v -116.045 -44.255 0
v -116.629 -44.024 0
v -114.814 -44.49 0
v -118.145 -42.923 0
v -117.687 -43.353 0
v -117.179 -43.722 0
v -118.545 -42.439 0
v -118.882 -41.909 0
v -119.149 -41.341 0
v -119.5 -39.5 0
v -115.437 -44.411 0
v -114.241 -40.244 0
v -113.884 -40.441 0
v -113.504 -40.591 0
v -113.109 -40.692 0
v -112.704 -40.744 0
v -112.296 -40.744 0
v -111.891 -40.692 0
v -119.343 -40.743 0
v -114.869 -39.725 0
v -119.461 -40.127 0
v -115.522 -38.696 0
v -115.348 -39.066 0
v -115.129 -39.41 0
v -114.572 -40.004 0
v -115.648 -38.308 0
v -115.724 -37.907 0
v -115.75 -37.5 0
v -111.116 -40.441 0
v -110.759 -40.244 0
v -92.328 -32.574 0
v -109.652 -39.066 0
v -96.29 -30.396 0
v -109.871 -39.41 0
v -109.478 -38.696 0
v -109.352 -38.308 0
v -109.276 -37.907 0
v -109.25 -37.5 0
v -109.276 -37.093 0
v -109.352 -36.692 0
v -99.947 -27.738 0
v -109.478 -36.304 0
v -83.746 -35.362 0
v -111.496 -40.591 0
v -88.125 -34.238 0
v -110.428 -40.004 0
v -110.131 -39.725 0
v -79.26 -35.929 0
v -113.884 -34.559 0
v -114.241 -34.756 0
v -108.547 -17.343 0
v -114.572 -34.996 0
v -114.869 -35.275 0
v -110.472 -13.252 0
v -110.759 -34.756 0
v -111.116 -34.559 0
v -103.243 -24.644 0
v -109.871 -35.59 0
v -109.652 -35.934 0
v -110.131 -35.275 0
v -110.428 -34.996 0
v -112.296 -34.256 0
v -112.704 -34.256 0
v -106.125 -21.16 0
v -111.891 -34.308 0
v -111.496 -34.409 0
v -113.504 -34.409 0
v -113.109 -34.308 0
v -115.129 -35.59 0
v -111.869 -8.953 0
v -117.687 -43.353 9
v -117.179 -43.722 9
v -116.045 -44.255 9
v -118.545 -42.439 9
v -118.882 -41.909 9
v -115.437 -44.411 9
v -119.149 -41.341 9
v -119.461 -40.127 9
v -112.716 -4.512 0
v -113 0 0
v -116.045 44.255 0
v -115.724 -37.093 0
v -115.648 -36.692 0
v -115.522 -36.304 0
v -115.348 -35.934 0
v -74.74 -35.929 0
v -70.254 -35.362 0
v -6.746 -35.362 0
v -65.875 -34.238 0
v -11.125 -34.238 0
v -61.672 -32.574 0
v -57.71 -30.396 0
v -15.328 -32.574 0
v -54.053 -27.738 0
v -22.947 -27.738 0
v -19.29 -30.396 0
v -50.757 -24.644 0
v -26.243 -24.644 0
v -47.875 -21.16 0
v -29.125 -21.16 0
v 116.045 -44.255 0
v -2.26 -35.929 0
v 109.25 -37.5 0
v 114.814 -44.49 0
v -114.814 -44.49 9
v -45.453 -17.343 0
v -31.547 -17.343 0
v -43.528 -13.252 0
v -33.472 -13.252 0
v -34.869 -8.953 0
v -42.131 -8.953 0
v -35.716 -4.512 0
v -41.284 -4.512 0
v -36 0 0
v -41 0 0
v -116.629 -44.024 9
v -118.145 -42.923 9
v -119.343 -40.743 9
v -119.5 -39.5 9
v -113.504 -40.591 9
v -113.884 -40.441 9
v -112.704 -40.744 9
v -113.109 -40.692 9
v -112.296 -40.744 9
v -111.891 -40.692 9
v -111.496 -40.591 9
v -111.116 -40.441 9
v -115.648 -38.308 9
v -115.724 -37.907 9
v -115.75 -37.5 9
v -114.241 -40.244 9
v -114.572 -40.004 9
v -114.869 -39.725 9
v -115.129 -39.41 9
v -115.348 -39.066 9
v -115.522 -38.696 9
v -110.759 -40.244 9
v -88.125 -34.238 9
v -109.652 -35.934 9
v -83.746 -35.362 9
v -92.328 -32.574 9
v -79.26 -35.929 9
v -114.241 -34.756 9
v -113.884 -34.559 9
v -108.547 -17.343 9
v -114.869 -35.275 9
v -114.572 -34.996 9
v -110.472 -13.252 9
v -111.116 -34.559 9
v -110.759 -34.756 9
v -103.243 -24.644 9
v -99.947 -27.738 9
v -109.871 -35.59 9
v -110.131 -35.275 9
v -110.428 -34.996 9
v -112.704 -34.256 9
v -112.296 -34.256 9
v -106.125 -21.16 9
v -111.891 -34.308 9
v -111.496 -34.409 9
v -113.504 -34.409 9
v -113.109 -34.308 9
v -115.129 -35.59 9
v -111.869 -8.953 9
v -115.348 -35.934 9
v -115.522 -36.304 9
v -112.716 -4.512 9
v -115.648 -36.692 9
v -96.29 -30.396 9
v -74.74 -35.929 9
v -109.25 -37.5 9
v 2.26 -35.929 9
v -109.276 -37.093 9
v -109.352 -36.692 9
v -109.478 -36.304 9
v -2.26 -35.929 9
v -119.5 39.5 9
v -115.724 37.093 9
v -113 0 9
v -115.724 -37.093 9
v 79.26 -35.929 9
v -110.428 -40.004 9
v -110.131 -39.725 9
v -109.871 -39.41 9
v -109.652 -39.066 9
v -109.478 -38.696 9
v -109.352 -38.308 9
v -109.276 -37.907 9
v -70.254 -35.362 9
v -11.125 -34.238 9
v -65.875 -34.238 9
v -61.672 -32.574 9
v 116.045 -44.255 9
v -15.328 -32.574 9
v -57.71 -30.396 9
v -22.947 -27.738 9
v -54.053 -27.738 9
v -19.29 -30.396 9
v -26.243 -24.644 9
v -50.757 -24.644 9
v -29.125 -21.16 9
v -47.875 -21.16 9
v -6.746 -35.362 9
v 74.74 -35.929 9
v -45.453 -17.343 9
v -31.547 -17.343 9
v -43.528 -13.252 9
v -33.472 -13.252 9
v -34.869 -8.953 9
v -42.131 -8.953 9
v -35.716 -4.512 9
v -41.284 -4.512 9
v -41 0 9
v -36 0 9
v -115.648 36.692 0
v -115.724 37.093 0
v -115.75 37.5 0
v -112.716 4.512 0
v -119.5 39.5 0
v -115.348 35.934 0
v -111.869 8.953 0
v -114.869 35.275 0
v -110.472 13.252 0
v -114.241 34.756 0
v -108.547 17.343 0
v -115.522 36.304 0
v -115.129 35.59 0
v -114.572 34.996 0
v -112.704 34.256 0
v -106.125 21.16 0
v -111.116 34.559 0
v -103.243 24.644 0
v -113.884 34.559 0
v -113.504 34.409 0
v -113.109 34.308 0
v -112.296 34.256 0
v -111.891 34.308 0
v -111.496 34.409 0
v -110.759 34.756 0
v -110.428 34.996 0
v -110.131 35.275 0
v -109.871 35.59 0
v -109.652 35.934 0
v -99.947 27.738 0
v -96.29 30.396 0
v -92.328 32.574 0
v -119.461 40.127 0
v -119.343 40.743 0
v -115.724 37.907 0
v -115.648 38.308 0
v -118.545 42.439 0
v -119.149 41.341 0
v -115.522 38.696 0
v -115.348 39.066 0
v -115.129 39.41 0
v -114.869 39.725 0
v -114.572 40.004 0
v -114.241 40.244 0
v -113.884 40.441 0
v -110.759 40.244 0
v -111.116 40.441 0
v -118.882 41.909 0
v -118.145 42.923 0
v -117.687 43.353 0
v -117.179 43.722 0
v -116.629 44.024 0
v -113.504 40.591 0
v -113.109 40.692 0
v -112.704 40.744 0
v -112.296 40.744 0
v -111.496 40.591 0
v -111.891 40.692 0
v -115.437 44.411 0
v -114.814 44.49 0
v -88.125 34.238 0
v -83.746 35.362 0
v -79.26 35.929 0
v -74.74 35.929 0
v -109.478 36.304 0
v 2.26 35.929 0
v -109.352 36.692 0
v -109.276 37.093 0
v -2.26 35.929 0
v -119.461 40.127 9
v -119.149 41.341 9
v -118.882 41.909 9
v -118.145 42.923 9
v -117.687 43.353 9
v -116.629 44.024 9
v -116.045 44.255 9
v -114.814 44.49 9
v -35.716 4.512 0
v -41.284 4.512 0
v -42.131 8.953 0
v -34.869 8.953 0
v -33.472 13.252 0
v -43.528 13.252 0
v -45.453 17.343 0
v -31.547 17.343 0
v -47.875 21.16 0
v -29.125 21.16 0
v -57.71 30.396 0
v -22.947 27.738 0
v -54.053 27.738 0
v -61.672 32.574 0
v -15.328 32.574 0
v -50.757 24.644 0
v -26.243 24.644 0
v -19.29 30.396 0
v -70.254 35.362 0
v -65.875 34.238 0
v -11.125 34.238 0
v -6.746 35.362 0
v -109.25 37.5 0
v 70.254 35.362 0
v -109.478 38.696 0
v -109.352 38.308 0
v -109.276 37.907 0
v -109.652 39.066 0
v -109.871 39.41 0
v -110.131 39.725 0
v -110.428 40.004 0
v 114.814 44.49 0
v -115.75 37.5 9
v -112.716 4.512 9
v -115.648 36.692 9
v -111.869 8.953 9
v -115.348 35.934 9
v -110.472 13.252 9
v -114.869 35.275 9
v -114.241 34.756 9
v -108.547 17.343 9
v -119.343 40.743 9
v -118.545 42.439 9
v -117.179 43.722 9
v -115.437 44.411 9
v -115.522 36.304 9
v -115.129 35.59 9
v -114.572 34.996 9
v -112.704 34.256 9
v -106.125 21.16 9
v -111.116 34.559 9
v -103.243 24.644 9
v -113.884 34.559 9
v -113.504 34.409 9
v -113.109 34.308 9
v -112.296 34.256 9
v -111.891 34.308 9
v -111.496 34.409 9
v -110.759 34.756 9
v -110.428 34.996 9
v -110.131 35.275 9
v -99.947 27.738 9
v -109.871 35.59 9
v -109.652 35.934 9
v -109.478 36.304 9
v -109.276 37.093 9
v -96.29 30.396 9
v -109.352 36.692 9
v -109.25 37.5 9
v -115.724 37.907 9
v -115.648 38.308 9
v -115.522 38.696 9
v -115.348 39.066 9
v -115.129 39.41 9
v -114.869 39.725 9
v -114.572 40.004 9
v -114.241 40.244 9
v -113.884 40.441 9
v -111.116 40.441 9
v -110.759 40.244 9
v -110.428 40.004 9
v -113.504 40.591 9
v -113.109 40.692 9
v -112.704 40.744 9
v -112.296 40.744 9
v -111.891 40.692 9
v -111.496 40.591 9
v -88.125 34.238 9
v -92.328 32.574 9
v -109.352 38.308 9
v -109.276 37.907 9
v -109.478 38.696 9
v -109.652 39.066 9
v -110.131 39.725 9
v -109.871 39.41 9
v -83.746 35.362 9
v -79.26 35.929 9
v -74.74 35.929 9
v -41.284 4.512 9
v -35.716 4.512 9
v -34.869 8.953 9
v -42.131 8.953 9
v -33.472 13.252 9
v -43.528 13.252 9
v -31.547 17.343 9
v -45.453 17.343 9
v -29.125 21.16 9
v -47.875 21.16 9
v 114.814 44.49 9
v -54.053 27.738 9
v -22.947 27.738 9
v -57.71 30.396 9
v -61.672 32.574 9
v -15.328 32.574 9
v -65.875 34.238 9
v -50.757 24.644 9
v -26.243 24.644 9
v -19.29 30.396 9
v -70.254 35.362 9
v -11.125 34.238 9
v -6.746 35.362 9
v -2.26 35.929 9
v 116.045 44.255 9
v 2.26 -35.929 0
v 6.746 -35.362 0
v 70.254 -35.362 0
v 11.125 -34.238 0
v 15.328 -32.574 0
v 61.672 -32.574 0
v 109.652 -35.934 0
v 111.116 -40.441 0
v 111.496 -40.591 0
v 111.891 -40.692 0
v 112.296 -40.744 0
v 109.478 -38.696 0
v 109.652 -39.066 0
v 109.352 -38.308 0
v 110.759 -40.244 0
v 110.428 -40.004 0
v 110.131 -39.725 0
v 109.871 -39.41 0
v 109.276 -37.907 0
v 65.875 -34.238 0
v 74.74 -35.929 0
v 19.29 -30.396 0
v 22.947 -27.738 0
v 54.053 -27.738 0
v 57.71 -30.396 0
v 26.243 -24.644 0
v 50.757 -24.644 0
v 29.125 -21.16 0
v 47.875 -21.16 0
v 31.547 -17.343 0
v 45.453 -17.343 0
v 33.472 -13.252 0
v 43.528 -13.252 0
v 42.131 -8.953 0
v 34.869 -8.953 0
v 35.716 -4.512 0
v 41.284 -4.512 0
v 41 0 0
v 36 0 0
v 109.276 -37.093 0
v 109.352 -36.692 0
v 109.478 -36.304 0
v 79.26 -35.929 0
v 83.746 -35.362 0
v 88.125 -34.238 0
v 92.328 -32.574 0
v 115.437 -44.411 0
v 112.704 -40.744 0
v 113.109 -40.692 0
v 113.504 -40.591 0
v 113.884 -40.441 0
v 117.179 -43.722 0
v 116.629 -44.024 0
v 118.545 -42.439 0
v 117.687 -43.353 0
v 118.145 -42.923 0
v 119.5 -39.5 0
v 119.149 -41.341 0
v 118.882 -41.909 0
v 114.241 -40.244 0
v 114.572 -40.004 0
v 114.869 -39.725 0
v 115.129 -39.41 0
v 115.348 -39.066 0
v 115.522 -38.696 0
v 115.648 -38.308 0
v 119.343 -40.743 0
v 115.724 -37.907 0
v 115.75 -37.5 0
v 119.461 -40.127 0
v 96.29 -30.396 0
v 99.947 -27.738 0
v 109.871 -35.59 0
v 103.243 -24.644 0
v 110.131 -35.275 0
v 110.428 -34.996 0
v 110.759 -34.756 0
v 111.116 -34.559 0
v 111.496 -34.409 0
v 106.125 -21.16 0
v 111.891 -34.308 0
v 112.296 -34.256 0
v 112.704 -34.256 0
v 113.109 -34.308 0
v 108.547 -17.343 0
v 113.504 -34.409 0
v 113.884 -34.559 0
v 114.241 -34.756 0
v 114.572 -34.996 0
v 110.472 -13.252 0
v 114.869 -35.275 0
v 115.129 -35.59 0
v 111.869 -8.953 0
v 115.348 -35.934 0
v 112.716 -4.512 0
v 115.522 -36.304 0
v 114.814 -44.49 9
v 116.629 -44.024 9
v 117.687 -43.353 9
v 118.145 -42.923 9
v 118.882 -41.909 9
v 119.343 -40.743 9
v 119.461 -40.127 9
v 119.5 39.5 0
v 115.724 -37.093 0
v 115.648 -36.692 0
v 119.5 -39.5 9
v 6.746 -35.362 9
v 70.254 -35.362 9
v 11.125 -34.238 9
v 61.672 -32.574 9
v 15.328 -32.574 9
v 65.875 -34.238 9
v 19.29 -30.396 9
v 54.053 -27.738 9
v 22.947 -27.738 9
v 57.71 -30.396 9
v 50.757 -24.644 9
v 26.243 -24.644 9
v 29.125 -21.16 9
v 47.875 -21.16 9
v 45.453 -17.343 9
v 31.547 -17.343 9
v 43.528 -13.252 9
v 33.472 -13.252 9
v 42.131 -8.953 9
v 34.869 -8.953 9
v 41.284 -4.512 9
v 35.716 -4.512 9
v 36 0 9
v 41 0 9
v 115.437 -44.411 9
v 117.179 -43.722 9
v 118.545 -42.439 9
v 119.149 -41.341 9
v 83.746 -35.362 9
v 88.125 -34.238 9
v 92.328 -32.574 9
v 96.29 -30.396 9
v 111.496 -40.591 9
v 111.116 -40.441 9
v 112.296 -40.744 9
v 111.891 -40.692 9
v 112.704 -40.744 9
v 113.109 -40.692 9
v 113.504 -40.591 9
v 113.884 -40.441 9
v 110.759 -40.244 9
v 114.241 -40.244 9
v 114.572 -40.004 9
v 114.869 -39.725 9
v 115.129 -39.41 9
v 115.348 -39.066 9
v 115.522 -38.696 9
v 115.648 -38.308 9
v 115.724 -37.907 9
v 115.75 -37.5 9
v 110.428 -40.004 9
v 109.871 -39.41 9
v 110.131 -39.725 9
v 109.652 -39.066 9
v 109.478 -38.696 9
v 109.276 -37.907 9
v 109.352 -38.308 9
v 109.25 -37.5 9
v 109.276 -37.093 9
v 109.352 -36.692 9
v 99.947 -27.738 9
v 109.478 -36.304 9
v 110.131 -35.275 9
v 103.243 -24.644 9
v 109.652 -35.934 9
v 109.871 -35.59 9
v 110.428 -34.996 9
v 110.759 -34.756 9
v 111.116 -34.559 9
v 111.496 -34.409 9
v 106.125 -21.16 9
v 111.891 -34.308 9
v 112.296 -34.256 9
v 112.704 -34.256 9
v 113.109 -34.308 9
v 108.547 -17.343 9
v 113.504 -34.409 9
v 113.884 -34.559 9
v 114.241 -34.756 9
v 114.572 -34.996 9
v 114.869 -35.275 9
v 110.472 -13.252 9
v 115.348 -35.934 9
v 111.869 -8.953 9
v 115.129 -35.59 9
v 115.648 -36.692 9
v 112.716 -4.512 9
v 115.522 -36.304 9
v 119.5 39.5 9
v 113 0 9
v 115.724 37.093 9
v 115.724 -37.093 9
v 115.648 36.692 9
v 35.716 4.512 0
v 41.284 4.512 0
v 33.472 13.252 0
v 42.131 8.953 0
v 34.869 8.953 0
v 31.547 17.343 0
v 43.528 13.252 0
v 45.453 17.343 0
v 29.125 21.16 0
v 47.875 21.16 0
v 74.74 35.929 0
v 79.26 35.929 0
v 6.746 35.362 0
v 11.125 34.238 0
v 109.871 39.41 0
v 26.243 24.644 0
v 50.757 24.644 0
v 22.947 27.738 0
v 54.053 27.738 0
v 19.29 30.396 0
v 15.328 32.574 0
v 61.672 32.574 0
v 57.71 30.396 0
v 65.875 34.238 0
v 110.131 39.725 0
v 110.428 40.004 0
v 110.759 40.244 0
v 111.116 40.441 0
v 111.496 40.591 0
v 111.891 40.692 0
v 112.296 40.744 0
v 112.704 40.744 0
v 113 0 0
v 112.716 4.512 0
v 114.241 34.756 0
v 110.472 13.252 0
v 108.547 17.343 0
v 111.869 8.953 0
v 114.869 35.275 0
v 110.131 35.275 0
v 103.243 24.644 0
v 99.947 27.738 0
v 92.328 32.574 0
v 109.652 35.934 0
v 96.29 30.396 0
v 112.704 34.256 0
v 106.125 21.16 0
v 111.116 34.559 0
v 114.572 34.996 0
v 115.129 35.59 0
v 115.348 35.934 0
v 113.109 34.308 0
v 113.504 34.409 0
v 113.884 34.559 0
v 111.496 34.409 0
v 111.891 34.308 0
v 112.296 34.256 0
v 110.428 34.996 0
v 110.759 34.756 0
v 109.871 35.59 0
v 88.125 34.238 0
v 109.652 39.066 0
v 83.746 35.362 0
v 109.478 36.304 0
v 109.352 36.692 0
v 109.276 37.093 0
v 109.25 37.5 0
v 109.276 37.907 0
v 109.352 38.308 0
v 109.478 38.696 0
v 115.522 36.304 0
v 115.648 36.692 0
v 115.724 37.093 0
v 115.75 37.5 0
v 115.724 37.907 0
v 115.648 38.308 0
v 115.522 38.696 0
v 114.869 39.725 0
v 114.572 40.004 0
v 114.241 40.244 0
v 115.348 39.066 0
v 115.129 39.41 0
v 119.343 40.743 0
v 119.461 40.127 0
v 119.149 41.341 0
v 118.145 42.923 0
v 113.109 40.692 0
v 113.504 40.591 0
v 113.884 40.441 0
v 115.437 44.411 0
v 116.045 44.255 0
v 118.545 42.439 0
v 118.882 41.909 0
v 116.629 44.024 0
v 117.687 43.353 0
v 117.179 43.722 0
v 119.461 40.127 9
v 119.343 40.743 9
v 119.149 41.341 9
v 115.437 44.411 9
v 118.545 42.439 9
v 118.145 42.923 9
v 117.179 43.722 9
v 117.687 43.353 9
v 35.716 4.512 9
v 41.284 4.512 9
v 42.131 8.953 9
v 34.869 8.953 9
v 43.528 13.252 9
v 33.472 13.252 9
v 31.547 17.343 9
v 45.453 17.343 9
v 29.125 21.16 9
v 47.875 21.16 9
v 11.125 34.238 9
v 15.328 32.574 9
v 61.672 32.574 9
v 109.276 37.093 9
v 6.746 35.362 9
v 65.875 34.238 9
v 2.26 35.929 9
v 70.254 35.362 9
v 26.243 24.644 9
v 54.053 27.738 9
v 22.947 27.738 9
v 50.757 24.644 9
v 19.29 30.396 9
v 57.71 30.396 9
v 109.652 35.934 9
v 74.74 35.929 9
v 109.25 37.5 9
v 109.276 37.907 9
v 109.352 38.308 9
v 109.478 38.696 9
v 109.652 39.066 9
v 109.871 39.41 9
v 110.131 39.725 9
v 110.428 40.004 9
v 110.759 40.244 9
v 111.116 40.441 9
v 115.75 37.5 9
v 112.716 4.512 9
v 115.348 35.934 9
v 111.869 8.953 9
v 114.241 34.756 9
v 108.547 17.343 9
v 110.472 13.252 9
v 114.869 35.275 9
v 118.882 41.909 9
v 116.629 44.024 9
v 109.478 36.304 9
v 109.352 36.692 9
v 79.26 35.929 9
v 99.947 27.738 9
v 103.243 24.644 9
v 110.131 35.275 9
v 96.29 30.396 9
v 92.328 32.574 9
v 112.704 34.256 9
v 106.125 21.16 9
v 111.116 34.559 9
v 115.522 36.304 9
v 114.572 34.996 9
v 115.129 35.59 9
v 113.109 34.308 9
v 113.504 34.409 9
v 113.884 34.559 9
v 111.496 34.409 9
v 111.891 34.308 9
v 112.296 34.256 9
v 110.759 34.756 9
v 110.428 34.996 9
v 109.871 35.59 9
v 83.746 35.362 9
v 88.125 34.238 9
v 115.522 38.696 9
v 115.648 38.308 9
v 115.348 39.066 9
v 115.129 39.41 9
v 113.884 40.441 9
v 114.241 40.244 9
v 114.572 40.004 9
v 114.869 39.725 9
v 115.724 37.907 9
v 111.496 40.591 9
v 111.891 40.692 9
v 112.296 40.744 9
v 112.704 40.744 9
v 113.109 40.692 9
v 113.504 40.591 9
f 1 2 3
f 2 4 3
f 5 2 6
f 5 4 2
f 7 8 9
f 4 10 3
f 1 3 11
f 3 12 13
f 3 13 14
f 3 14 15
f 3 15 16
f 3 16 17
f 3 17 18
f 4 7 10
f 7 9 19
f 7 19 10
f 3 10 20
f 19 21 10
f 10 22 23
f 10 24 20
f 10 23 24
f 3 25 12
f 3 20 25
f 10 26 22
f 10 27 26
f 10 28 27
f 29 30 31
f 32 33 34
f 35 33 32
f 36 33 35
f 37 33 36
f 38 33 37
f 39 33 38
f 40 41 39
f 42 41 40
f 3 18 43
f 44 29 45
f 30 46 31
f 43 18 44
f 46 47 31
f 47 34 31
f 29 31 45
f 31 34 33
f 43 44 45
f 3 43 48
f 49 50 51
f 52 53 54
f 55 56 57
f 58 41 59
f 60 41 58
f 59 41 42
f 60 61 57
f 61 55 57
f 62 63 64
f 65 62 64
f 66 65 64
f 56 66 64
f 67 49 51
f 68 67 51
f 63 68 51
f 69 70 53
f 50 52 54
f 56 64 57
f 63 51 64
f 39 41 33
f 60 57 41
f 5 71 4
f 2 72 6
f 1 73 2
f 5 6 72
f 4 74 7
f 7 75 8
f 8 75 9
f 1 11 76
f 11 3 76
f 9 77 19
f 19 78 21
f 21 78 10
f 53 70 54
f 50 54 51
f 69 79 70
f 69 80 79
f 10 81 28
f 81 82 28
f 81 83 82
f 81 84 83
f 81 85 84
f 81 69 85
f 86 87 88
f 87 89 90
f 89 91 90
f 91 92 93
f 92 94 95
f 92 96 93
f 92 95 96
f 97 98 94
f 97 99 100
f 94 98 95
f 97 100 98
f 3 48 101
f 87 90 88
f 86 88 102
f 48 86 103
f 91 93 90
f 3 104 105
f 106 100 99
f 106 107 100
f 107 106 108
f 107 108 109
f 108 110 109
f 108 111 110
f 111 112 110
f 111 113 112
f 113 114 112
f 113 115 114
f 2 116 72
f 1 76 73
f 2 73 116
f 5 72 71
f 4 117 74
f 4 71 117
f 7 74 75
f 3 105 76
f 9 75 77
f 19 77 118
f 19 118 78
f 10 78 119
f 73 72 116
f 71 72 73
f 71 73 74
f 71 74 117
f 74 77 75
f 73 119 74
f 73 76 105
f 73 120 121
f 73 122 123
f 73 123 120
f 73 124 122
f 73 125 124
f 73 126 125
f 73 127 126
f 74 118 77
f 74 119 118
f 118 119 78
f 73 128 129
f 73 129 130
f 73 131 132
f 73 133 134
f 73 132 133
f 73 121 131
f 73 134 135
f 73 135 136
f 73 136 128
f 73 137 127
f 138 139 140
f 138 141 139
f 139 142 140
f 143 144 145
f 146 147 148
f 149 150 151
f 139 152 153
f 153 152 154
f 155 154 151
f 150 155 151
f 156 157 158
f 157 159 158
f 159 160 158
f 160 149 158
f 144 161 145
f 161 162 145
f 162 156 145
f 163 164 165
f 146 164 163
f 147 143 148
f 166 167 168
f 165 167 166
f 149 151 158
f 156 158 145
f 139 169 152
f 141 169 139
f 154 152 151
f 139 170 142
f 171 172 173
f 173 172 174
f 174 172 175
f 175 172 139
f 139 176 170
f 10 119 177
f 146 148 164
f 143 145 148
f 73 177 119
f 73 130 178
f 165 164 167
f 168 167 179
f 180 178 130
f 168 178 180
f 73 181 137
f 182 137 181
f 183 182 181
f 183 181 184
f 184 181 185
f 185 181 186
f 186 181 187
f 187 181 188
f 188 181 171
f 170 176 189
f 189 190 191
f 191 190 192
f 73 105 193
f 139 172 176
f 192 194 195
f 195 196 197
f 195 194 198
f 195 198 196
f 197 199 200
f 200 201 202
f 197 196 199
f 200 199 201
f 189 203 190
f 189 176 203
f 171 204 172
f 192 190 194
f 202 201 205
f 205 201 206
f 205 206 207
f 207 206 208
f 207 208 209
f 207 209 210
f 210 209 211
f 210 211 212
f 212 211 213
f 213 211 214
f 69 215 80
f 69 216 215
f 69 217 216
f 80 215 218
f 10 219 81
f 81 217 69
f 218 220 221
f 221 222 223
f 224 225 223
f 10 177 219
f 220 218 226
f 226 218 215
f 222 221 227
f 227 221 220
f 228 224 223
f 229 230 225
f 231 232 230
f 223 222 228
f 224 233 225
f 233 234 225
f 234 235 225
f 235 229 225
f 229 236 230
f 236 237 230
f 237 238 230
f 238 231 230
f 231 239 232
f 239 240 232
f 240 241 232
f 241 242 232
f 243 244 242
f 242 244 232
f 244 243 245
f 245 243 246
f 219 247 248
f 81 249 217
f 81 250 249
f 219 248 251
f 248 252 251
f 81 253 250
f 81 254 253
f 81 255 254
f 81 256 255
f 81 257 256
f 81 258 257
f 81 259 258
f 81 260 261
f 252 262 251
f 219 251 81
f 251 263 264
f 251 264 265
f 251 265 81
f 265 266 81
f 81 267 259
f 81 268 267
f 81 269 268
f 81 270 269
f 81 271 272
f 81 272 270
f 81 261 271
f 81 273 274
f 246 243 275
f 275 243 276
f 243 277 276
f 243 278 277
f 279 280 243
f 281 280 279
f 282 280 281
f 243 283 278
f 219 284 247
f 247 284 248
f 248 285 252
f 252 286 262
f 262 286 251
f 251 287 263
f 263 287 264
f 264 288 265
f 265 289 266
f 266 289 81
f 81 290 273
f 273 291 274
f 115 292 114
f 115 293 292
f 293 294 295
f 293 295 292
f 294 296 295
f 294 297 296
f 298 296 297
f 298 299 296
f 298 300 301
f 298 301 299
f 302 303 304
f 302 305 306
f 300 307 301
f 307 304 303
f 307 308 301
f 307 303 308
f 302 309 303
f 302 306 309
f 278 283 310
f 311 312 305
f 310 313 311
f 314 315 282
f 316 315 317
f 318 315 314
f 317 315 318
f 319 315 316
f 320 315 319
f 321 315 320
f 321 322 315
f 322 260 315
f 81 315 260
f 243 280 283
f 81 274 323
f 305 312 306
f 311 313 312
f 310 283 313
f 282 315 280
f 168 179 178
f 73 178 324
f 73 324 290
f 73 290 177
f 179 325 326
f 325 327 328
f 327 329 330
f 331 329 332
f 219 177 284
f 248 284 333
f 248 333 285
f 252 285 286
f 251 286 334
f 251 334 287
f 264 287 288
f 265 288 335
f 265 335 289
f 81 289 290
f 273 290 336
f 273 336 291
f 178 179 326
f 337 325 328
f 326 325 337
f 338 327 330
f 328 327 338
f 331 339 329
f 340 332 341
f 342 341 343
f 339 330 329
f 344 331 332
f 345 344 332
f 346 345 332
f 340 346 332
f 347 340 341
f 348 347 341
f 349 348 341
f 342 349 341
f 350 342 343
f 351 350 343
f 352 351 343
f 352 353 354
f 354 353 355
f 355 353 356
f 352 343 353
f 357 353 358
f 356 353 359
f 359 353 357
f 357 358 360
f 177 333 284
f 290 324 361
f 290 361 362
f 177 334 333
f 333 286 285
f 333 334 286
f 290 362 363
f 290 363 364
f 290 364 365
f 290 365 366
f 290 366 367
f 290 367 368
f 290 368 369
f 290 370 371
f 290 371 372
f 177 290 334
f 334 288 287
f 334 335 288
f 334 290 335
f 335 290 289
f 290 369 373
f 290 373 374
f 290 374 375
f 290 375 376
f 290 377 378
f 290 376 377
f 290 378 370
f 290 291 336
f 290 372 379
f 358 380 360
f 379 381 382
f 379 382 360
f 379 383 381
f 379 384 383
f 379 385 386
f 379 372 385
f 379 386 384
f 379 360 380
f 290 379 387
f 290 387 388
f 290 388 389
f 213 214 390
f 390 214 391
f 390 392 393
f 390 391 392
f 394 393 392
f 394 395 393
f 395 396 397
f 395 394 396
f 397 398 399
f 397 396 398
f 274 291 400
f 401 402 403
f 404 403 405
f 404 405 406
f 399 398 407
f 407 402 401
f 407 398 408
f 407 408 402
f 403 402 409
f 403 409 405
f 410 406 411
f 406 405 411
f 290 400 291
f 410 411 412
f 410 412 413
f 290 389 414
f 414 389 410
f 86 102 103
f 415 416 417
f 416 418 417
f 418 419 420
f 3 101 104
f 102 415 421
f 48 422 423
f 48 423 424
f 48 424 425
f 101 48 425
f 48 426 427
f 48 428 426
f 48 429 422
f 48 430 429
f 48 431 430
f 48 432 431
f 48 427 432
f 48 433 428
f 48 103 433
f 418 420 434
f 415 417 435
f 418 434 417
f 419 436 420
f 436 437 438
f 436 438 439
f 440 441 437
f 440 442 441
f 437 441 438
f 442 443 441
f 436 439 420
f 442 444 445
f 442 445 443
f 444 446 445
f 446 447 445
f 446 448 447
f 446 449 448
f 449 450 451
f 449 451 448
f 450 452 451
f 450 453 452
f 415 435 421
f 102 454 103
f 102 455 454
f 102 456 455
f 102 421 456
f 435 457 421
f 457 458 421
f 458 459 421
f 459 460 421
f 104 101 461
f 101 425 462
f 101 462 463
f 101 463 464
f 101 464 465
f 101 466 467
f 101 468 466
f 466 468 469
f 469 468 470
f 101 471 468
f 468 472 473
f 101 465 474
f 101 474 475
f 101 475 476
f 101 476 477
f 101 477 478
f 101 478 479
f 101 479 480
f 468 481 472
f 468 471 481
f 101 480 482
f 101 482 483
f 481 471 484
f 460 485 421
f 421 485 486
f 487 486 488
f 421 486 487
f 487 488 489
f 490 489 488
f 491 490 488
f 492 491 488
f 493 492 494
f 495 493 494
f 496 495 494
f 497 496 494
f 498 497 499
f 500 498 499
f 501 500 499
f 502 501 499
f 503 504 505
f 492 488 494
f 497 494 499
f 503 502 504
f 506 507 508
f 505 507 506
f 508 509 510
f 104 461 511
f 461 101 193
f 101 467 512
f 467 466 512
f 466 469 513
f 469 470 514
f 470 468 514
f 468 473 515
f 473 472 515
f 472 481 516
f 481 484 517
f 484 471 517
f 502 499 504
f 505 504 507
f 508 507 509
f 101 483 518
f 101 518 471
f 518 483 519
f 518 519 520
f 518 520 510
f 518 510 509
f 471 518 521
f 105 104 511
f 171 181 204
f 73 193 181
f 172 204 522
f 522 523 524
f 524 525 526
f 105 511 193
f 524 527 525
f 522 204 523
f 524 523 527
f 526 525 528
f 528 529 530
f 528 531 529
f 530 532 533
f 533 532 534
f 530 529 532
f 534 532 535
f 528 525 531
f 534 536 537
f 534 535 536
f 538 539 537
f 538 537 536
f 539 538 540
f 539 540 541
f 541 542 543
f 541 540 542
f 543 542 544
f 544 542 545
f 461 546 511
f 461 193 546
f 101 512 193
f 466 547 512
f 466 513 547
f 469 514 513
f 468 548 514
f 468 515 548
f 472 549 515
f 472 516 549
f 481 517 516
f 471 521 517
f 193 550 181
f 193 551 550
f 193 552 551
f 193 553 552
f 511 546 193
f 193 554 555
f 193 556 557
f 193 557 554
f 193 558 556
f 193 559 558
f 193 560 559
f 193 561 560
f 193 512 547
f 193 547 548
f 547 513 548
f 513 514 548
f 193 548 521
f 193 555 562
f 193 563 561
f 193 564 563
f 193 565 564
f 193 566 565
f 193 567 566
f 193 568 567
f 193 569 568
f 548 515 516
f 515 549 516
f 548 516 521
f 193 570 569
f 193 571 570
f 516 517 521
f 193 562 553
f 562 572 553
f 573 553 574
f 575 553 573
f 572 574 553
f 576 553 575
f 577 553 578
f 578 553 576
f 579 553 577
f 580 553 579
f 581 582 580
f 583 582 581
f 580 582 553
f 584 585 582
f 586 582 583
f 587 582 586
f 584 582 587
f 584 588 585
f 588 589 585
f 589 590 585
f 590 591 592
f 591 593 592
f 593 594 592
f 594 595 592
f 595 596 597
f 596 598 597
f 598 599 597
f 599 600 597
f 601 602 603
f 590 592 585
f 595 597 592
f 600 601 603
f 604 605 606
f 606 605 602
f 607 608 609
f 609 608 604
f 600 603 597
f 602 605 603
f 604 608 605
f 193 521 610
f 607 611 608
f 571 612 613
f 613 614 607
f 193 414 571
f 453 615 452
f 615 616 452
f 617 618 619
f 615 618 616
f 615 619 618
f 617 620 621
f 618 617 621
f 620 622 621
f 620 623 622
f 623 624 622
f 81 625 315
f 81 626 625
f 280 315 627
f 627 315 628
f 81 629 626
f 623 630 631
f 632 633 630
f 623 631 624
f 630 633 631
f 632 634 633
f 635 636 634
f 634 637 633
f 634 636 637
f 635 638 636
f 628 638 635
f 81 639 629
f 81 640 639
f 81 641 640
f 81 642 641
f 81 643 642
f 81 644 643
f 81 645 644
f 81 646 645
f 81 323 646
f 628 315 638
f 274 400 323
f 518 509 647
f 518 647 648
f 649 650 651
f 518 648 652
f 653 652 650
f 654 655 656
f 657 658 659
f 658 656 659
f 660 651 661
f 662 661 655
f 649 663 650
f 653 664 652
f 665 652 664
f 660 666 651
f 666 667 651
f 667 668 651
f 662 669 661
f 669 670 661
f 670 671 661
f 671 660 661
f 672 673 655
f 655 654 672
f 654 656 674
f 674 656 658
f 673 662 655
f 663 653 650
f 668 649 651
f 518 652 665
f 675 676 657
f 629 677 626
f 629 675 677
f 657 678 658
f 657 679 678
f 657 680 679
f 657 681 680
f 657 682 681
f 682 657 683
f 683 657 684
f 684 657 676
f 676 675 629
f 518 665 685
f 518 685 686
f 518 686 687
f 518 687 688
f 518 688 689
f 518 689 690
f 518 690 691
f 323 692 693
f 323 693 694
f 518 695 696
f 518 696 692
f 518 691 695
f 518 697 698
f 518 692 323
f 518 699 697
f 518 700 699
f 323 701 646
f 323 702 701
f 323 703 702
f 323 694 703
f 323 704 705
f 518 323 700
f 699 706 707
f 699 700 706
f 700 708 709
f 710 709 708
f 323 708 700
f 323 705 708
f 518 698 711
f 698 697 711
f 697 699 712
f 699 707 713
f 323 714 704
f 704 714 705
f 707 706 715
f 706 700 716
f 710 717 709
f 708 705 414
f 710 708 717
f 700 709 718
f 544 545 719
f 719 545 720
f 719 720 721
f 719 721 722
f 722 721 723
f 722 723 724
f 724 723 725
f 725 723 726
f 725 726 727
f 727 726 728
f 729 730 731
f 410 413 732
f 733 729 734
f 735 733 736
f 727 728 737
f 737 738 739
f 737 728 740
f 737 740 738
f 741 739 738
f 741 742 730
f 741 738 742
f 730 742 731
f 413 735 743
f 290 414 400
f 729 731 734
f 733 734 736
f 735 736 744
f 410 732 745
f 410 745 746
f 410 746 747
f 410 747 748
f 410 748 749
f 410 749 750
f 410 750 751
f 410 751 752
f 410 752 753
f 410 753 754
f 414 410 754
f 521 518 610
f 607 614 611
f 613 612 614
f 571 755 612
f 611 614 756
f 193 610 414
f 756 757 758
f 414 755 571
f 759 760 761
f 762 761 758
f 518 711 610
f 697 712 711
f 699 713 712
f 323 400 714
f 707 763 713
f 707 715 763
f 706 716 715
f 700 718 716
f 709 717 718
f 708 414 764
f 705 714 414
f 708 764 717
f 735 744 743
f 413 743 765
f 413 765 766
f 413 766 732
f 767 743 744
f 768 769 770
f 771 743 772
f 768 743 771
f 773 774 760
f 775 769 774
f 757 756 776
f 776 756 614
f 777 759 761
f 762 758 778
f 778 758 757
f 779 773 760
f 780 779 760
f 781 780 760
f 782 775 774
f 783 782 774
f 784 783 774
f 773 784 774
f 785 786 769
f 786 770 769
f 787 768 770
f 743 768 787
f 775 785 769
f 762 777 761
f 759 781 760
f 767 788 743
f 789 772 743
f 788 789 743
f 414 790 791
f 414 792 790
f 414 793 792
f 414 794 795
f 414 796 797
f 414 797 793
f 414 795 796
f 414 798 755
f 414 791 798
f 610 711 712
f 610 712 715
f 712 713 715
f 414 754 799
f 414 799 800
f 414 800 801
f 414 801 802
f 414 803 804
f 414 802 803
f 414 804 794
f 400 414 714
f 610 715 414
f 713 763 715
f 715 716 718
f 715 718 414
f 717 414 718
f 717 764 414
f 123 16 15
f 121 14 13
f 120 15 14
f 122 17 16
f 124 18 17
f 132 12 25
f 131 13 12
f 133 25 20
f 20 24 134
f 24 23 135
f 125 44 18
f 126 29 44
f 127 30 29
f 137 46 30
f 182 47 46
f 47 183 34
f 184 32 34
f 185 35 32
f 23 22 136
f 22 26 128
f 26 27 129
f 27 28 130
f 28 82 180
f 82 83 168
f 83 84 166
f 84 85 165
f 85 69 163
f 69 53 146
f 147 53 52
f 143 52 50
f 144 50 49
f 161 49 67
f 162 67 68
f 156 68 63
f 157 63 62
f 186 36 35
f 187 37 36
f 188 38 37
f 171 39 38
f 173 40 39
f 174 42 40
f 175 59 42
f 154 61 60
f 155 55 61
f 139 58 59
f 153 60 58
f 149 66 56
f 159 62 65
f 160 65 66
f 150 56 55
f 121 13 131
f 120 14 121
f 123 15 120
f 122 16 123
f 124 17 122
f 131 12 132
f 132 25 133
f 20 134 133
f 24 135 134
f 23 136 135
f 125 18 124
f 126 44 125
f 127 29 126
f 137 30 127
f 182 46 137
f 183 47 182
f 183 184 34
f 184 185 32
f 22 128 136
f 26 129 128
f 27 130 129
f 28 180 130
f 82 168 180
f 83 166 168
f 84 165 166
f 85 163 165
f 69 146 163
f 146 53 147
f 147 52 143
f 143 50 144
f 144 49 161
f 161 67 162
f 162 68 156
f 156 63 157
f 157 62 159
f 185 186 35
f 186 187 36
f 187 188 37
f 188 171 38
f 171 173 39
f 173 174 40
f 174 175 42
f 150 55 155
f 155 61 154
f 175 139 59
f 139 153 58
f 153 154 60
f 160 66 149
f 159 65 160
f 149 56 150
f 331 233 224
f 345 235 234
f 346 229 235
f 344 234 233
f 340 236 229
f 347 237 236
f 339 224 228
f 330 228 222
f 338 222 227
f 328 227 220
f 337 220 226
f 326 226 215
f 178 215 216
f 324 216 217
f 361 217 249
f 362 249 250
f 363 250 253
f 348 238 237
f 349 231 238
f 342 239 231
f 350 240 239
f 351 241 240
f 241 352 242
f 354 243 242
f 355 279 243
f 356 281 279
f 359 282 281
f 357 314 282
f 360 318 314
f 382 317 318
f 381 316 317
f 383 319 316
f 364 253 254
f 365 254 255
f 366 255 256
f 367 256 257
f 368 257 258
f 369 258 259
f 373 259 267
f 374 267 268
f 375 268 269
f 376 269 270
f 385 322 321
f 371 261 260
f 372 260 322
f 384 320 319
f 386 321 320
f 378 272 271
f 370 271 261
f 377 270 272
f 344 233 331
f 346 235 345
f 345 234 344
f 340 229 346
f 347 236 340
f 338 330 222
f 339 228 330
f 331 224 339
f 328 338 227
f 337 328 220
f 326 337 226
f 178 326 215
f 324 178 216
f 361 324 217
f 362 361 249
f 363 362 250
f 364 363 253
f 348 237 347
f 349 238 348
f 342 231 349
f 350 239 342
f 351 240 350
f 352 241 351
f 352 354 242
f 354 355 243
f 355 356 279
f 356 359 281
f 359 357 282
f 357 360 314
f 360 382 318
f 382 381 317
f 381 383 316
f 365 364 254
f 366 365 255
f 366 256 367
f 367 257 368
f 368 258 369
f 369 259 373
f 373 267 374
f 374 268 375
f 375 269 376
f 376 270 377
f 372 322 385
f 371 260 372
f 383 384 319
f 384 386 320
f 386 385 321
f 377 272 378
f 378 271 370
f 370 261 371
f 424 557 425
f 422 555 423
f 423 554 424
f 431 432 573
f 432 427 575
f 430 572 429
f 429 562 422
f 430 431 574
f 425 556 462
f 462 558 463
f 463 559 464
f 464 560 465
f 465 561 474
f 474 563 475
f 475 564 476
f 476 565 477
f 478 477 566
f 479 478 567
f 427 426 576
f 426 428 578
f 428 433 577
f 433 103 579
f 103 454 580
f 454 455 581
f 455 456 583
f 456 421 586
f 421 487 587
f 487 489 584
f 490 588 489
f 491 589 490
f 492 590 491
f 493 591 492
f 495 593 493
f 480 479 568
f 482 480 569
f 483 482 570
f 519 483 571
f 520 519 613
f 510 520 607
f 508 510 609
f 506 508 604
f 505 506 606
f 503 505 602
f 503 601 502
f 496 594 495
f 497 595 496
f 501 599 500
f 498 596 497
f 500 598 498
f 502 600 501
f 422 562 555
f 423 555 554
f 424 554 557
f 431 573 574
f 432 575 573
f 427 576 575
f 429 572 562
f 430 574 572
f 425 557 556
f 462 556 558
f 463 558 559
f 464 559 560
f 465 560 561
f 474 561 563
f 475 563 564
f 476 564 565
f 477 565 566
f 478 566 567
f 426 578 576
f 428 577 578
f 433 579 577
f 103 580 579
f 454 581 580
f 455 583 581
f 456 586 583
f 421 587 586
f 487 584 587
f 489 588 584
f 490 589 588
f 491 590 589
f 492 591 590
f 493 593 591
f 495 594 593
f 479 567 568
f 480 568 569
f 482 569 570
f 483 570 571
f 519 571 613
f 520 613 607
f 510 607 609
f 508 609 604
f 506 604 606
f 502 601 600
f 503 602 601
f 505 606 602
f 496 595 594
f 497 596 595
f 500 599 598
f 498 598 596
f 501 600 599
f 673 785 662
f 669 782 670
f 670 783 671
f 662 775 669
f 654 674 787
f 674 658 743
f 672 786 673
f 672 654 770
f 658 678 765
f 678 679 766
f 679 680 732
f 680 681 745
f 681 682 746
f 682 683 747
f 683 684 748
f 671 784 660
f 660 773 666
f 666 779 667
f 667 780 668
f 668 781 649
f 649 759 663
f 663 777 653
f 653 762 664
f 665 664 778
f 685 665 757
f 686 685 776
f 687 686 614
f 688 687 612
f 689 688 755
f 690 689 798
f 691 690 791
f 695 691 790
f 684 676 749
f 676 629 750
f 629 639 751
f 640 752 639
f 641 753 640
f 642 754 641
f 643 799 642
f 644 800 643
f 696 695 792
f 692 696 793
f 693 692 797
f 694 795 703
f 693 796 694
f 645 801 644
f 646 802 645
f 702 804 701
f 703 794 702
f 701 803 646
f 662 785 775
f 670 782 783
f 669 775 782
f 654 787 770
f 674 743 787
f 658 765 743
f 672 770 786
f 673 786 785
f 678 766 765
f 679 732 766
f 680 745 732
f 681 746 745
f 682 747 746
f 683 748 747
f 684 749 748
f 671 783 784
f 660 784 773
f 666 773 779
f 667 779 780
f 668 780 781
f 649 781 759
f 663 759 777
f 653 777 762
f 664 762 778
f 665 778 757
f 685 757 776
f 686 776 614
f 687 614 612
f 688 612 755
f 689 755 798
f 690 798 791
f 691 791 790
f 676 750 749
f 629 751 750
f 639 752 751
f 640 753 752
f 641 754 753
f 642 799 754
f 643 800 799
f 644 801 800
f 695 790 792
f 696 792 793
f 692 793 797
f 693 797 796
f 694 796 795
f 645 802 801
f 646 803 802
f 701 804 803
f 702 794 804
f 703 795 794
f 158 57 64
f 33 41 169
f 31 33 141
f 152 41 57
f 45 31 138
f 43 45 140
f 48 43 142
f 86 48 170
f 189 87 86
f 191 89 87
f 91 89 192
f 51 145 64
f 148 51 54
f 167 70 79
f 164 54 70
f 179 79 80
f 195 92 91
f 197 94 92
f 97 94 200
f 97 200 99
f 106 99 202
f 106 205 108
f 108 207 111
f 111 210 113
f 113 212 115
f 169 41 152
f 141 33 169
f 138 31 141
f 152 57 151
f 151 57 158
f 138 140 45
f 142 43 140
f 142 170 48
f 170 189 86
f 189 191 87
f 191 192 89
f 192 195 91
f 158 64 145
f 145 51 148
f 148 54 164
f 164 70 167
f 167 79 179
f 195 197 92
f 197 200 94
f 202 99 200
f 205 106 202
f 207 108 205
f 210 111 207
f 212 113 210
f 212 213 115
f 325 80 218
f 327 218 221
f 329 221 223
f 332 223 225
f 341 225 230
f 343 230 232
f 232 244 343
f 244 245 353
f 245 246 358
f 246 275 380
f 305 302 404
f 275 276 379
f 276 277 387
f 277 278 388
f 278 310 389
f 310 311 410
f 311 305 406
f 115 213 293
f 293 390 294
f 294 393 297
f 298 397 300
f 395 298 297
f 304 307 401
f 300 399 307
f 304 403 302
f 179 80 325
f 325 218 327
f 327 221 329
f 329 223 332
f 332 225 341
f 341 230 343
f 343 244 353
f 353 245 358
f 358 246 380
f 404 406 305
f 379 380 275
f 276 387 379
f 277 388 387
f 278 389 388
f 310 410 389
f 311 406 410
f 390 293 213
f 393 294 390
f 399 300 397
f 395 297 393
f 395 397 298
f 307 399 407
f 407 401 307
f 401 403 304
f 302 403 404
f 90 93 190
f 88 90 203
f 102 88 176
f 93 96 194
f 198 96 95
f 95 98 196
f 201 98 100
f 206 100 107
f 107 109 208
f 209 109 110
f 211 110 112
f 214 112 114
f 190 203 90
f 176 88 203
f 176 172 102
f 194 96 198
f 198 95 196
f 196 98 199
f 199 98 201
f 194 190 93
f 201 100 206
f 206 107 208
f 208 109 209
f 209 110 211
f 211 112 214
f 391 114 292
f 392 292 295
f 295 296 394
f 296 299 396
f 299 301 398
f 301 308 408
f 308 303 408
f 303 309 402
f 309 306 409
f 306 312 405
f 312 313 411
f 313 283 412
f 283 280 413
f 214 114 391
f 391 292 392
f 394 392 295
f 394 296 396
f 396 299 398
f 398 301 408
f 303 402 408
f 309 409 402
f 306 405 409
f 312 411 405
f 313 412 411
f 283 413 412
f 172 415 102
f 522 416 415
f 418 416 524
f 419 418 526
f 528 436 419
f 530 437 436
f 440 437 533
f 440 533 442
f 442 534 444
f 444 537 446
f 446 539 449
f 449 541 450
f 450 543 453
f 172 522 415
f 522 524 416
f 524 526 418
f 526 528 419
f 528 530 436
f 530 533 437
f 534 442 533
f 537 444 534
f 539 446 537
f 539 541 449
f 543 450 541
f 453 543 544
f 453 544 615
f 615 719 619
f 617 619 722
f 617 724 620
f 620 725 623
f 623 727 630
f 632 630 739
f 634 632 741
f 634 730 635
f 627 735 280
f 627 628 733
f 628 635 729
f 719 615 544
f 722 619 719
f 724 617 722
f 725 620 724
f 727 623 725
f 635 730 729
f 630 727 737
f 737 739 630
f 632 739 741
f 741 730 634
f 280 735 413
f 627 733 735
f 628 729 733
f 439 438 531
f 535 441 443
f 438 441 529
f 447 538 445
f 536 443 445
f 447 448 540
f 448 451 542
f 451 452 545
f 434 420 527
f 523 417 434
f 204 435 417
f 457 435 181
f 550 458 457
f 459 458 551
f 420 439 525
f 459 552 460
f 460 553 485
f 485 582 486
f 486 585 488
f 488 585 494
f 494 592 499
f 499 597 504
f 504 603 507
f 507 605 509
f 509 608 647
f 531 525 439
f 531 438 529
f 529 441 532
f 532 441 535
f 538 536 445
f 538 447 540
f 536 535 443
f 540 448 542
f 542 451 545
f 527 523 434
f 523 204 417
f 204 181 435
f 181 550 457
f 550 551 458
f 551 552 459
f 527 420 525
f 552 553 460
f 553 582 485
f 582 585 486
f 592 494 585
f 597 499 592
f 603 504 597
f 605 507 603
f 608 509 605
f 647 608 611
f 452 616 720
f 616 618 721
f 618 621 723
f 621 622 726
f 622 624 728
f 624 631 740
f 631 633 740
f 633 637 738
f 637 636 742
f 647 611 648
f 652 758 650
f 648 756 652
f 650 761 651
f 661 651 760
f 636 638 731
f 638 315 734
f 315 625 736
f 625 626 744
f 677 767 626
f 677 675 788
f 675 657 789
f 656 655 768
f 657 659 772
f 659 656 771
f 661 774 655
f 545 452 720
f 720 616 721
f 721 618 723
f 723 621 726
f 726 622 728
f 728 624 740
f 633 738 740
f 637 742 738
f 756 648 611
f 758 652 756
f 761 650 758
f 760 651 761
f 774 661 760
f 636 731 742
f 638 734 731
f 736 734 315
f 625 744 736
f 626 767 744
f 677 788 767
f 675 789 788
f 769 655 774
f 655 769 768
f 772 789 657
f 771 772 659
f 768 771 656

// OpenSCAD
$fn = 50;

difference() {
	union() {
		hull() {
			translate(v = [-114.5, 39.5, 0]) {
				cylinder(h = 9, r = 5);
			}
			translate(v = [114.5, 39.5, 0]) {
				cylinder(h = 9, r = 5);
			}
			translate(v = [-114.5, -39.5, 0]) {
				cylinder(h = 9, r = 5);
			}
			translate(v = [114.5, -39.5, 0]) {
				cylinder(h = 9, r = 5);
			}
		}
	}
	union() {
		translate(v = [-112.5, -37.5, -100.0]) {
			cylinder(h = 200, r = 3.25);
		}
		translate(v = [-112.5, 37.5, -100.0]) {
			cylinder(h = 200, r = 3.25);
		}
		translate(v = [112.5, -37.5, -100.0]) {
			cylinder(h = 200, r = 3.25);
		}
		translate(v = [112.5, 37.5, -100.0]) {
			cylinder(h = 200, r = 3.25);
		}
		translate(v = [-112.5, -37.5, -100.0]) {
			cylinder(h = 200, r = 1.8);
		}
		translate(v = [-112.5, 37.5, -100.0]) {
			cylinder(h = 200, r = 1.8);
		}
		translate(v = [112.5, -37.5, -100.0]) {
			cylinder(h = 200, r = 1.8);
		}
		translate(v = [112.5, 37.5, -100.0]) {
			cylinder(h = 200, r = 1.8);
		}
		translate(v = [-77.0, 0, 0.0]) {
			cylinder(h = 9, r = 36.0);
		}
		cylinder(h = 9, r = 36.0);
		translate(v = [77.0, 0, 0.0]) {
			cylinder(h = 9, r = 36.0);
		}
	}
}
